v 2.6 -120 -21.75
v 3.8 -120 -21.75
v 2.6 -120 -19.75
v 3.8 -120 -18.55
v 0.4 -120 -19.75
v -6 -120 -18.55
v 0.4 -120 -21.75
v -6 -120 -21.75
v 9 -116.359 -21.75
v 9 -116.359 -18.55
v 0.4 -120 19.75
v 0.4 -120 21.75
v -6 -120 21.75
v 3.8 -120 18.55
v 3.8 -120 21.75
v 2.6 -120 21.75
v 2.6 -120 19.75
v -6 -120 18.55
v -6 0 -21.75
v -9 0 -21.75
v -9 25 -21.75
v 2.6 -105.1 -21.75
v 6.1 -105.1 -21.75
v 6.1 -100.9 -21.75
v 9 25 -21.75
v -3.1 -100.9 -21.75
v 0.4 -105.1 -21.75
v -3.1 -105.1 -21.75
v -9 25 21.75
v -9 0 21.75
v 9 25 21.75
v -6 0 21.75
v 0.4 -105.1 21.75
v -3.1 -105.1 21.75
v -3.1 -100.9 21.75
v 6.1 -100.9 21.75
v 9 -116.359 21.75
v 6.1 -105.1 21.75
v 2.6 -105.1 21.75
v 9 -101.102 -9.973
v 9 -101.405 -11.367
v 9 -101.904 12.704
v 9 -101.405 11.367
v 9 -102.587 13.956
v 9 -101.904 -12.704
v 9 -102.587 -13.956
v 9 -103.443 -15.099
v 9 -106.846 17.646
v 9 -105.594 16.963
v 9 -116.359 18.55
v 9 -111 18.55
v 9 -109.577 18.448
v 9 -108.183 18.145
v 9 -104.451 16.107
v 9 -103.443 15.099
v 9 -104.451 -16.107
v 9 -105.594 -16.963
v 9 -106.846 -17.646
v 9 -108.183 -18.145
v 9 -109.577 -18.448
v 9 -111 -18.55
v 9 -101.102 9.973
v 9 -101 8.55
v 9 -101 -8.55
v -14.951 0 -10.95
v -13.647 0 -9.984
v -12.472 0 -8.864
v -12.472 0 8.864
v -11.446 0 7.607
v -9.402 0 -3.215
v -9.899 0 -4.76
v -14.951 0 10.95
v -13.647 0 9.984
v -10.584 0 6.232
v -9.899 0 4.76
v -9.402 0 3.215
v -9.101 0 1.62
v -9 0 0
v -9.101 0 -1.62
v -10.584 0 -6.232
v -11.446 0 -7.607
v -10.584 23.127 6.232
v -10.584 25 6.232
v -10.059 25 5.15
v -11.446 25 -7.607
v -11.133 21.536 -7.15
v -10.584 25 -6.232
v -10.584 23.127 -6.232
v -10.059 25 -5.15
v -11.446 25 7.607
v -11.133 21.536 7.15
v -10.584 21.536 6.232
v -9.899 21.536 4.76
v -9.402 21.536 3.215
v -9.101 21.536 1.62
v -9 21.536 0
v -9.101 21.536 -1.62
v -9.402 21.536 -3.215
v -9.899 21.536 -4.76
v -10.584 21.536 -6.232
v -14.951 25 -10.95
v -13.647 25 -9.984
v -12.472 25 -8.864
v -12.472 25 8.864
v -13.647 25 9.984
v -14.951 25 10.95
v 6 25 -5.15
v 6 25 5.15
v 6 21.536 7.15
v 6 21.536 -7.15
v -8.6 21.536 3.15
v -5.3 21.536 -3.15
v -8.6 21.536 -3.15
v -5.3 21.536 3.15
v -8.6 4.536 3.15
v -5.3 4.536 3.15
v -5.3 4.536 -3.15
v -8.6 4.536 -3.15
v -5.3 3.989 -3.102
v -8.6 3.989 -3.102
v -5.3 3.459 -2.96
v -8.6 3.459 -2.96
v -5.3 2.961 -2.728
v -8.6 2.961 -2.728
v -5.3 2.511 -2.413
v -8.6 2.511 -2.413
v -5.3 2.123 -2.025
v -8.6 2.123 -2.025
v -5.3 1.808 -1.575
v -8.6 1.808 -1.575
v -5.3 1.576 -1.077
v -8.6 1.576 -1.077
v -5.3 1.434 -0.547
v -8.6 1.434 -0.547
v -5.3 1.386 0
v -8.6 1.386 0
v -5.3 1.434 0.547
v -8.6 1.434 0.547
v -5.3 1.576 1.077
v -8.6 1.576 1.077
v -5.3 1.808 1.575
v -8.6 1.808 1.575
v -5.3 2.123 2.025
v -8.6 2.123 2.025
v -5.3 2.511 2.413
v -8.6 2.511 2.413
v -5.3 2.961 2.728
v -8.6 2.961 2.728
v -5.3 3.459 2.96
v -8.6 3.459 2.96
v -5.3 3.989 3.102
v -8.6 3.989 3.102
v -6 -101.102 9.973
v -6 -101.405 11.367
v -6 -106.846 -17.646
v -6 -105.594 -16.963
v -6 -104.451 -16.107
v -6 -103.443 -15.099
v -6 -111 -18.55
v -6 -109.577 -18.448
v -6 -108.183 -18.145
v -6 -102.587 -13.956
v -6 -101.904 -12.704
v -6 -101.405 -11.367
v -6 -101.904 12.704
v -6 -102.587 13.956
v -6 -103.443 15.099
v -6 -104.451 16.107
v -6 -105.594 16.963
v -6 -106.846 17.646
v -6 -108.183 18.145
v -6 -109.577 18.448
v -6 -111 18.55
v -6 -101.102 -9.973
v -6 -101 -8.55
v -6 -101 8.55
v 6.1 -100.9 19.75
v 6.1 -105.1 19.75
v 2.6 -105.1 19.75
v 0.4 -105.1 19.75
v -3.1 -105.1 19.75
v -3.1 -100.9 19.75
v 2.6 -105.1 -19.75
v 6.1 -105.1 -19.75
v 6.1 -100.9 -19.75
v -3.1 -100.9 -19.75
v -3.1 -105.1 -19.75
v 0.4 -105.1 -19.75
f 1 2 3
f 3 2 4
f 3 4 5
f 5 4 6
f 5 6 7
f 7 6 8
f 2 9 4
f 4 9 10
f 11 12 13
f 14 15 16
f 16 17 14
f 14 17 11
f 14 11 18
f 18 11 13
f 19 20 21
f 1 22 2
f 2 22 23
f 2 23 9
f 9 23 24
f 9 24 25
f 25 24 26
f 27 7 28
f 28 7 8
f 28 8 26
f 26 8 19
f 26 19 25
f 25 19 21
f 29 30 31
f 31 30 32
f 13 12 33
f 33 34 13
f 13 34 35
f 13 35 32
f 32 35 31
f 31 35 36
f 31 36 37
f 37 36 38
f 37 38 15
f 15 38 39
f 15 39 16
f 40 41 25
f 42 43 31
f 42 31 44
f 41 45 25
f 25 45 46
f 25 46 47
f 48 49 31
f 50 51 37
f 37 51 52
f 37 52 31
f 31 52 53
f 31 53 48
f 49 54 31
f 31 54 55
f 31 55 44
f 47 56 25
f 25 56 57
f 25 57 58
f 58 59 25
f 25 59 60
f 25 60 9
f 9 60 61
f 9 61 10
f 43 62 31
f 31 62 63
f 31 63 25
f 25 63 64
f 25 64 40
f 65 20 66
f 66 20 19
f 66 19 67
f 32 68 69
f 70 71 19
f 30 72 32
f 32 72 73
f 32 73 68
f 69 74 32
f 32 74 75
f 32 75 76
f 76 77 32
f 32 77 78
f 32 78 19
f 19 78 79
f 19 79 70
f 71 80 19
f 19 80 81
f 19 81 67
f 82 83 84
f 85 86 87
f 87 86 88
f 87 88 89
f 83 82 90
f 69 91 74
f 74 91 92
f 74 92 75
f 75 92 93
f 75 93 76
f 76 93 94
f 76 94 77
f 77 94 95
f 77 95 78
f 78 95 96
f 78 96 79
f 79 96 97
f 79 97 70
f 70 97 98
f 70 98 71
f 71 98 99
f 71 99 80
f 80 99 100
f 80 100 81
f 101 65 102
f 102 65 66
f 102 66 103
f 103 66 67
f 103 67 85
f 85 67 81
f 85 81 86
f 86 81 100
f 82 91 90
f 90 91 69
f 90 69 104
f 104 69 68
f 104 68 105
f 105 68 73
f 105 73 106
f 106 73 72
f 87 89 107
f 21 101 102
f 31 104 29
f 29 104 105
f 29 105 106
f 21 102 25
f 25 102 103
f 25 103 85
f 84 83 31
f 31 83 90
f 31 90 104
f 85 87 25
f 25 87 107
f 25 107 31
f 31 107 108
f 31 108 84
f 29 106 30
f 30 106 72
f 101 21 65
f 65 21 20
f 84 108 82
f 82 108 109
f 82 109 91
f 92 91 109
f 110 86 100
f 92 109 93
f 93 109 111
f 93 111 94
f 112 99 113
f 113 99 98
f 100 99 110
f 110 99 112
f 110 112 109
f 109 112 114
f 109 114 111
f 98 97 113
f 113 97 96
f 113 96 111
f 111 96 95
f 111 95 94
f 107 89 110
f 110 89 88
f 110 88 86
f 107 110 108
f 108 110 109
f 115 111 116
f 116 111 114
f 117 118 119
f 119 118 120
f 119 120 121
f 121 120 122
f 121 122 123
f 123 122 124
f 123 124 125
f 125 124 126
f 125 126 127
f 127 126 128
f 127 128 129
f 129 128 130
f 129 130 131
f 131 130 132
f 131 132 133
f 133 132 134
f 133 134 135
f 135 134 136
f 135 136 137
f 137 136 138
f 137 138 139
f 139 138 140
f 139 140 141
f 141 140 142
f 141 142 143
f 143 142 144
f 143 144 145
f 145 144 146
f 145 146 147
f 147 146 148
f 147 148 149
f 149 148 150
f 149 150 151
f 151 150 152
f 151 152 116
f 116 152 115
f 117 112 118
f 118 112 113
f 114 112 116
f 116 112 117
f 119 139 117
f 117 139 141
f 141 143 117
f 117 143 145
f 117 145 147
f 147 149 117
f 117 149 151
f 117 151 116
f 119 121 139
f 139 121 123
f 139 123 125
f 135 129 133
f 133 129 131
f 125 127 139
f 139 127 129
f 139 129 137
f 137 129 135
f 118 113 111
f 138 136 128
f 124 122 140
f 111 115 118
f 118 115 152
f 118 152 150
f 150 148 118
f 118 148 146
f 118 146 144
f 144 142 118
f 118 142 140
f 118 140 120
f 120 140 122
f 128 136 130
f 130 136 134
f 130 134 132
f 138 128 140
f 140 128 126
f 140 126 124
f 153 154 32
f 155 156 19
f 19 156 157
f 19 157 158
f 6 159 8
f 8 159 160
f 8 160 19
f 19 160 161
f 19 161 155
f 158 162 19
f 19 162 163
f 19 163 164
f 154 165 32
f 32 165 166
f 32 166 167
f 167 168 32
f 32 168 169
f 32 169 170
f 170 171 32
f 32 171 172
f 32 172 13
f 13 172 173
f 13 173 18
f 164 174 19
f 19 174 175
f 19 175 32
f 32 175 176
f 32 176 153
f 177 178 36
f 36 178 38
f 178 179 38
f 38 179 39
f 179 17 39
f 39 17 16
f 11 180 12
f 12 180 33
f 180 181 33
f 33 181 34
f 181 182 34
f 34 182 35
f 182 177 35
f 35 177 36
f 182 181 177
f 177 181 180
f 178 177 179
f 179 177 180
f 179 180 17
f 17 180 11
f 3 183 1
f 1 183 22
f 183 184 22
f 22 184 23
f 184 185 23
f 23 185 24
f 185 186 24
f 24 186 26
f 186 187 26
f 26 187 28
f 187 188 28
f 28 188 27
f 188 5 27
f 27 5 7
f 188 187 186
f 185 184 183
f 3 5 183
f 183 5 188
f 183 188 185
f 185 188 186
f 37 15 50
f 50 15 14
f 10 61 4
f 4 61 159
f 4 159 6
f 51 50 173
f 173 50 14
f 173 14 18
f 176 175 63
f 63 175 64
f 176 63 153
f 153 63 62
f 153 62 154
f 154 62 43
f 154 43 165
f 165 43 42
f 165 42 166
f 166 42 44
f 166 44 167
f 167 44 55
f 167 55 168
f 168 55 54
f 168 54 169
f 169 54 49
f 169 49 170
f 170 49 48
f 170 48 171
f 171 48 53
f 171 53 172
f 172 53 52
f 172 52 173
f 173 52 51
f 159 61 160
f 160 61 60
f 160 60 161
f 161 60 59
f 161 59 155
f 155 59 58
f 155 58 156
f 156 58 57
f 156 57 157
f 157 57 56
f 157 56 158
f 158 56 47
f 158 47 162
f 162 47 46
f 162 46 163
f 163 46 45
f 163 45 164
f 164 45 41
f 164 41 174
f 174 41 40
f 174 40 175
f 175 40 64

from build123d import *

# Parameters (mm, degrees)
SKETCH2_W               = 18
SKETCH2_H               = 43.5
BOSS_EXTRUDE1_DEPTH     = 25
CUT_EXTRUDE1_DEPTH      = 15
CUT_EXTRUDE1_DEPTH_BACK = 6.951267747
CUT_EXTRUDE2_START      = 0.4
CUT_EXTRUDE2_DEPTH      = 3.3
SKETCH5_W               = 15
SKETCH5_H               = 43.5
BOSS_EXTRUDE2_DEPTH     = 120
SKETCH6_W               = 2.2
SKETCH6_H               = 14.9
CUT_EXTRUDE3_DEPTH      = 2
CUT_EXTRUDE4_START      = -43.5
SKETCH6_3_W             = 2.2
SKETCH6_3_H             = 14.9
CUT_EXTRUDE4_DEPTH      = 2
CUT_EXTRUDE5_DEPTH      = 44.5
SKETCH8_W               = 37.1
SKETCH8_H               = 38
CUT_EXTRUDE6_DEPTH      = 16
FILLET1_R               = 10


with BuildPart() as part:
    # Sketch2 → Boss-Extrude1 (new body)
    with BuildSketch(Plane(origin=(0, 0, 0), x_dir=(1, 0, 0), z_dir=(0, 1, 0))):
        with BuildLine():
            Line((-9, 0), (-9, 21.75))
            Line((-9, 21.75), (-14.951267747, 10.950365309))
            ThreePointArc((-14.951267747, 10.950365309), (-10.583942354, 6.231534486), (-9, 0))
        make_face()
        with BuildLine():
            Line((-9, -21.75), (-9, 0))
            ThreePointArc((-9, 0), (-10.583942354, -6.231534486), (-14.951267747, -10.950365309))
            Line((-14.951267747, -10.950365309), (-9, -21.75))
        make_face()
        Rectangle(SKETCH2_W, SKETCH2_H)
    extrude(amount=BOSS_EXTRUDE1_DEPTH)

    # Sketch3 → Cut-Extrude1 (cut, two sides)
    with BuildSketch(Plane(origin=(-9, 0, 0), x_dir=(0, 0, -1), z_dir=(1, 0, 0))) as cut_extrude1_sk:
        Polygon((-5.15, 25), (5.15, 25), (7.15, 21.535898385), (-7.15, 21.535898385), align=None)
    extrude(amount=CUT_EXTRUDE1_DEPTH, mode=Mode.SUBTRACT)
    extrude(cut_extrude1_sk.sketch, amount=-CUT_EXTRUDE1_DEPTH_BACK, mode=Mode.SUBTRACT)

    # Sketch4 → Cut-Extrude2 (cut)
    with BuildSketch(Plane(origin=(-9, 0, 0), x_dir=(0, 0, -1), z_dir=(1, 0, 0)).offset(CUT_EXTRUDE2_START)):
        with BuildLine():
            Line((3.15, 29.404082691), (3.15, 4.535898385))
            ThreePointArc((3.15, 4.535898385), (0, 1.385898385), (-3.15, 4.535898385))
            Line((-3.15, 4.535898385), (-3.15, 29.404082691))
            ThreePointArc((-3.15, 29.404082691), (0, 32.554082691), (3.15, 29.404082691))
        make_face()
    extrude(amount=CUT_EXTRUDE2_DEPTH, mode=Mode.SUBTRACT)

    # Sketch5 → Boss-Extrude2 (add)
    with BuildSketch(Plane.XZ):
        with Locations((1.5, 0)):
            Rectangle(SKETCH5_W, SKETCH5_H)
    extrude(amount=BOSS_EXTRUDE2_DEPTH)

    # Sketch6 → Cut-Extrude3 (cut)
    with BuildSketch(Plane.XY.offset(21.75)):
        Polygon((-3.1, -105.1), (0.4, -105.1), (2.6, -105.1), (6.1, -105.1), (6.1, -100.9), (-3.1, -100.9), align=None)
        with Locations((1.5, -112.55)):
            Rectangle(SKETCH6_W, SKETCH6_H)
    extrude(amount=-CUT_EXTRUDE3_DEPTH, mode=Mode.SUBTRACT)

    # Sketch6<3> → Cut-Extrude4 (cut)
    with BuildSketch(Plane.XY.offset(21.75).offset(CUT_EXTRUDE4_START)):
        Polygon((-3.1, -105.1), (0.4, -105.1), (2.6, -105.1), (6.1, -105.1), (6.1, -100.9), (-3.1, -100.9), align=None)
        with Locations((1.5, -112.55)):
            Rectangle(SKETCH6_3_W, SKETCH6_3_H)
    extrude(amount=CUT_EXTRUDE4_DEPTH, mode=Mode.SUBTRACT)

    # Sketch7 → Cut-Extrude5 (cut, through all)
    with BuildSketch(Plane.XY.offset(21.75)):
        Polygon((9, -116.358920801), (3.8, -120), (9, -120), align=None)
    extrude(amount=-CUT_EXTRUDE5_DEPTH, mode=Mode.SUBTRACT)

    # Sketch8 → Cut-Extrude6 (cut, through all)
    with BuildSketch(Plane.ZY.offset(6)):
        with Locations((0, -120)):
            Rectangle(SKETCH8_W, SKETCH8_H)
    extrude(amount=-CUT_EXTRUDE6_DEPTH, mode=Mode.SUBTRACT)

    # Fillet1
    fillet1_edges = [part.edges().sort_by_distance(p)[0] for p in [
        (1.5, -101, 18.55),
        (1.5, -101, -18.55),
    ]]
    fillet(fillet1_edges, radius=FILLET1_R)


solid = part.part
